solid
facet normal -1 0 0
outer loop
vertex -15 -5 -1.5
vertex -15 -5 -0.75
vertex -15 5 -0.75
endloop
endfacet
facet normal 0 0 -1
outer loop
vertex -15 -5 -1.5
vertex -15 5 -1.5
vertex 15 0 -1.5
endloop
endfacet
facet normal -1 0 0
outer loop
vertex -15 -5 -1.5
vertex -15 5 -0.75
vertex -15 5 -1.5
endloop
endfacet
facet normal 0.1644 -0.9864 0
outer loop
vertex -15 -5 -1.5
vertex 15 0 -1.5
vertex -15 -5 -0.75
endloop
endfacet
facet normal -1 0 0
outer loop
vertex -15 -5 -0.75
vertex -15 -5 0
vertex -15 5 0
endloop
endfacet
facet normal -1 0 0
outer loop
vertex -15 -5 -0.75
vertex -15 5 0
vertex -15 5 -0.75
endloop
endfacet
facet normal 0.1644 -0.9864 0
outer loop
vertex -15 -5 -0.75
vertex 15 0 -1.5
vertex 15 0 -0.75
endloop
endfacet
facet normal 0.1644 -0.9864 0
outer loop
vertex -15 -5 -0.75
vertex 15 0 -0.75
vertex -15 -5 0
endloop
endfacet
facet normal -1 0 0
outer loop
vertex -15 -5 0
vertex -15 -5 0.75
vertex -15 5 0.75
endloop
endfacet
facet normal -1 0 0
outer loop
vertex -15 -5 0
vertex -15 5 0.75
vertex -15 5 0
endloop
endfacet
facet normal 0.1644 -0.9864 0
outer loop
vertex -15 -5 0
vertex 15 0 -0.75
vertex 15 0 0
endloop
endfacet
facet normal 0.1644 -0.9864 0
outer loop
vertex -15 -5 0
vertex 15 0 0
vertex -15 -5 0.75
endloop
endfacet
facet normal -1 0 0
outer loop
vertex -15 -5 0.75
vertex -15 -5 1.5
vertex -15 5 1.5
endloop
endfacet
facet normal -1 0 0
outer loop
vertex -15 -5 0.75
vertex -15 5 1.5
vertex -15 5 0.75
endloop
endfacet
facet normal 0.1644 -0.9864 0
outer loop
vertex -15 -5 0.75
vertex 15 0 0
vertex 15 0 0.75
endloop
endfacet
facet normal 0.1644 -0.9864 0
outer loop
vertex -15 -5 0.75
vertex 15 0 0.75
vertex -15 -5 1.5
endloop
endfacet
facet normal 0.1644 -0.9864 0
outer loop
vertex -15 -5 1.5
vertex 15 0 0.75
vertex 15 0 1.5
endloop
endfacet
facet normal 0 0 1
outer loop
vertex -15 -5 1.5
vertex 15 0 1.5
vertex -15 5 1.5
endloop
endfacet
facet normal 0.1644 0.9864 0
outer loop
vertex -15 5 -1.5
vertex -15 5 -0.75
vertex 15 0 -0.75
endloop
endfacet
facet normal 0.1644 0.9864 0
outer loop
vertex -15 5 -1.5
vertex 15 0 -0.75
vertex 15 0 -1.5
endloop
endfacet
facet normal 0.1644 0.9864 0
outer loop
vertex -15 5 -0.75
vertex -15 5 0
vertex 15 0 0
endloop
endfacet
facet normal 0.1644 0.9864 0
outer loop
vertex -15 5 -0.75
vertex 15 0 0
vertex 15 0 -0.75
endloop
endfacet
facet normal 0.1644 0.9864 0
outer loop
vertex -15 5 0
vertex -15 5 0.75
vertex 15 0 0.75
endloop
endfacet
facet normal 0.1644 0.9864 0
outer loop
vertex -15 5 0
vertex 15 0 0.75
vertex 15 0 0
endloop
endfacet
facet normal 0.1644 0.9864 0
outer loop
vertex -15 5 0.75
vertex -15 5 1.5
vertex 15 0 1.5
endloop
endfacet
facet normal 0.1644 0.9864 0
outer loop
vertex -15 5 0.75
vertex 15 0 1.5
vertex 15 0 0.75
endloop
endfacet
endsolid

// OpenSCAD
// Start: lazy_union
default_5_default_5();
// End: lazy_union

// Modules.

// 'PartMaterial undef-default - default 5.0'
module default_5_default_5() {
  // 'None : _combine_solids_and_holes'
  union() {
    // 'default : _combine_solids_and_holes'
    union() {
      // 'prism'
      multmatrix(m=[[0.0, 1.0, 0.0, -15.0], [1.0, 0.0, 0.0, -5.0], [0.0, 0.0, -1.0, 1.5], [0.0, 0.0, 0.0, 1.0]]) {
        // 'prism : _combine_solids_and_holes'
        union() {
          // 'prism'
          linear_extrude(height=3.0, twist=0.0, slices=4, scale=[1.0, 1.0]) {
            polygon(points=[[0.0, 0.0], [5.0, 30.0], [10.0, 0.0]]);
          }
        }
      }
    }
  }
} // end module default_5_default_5
